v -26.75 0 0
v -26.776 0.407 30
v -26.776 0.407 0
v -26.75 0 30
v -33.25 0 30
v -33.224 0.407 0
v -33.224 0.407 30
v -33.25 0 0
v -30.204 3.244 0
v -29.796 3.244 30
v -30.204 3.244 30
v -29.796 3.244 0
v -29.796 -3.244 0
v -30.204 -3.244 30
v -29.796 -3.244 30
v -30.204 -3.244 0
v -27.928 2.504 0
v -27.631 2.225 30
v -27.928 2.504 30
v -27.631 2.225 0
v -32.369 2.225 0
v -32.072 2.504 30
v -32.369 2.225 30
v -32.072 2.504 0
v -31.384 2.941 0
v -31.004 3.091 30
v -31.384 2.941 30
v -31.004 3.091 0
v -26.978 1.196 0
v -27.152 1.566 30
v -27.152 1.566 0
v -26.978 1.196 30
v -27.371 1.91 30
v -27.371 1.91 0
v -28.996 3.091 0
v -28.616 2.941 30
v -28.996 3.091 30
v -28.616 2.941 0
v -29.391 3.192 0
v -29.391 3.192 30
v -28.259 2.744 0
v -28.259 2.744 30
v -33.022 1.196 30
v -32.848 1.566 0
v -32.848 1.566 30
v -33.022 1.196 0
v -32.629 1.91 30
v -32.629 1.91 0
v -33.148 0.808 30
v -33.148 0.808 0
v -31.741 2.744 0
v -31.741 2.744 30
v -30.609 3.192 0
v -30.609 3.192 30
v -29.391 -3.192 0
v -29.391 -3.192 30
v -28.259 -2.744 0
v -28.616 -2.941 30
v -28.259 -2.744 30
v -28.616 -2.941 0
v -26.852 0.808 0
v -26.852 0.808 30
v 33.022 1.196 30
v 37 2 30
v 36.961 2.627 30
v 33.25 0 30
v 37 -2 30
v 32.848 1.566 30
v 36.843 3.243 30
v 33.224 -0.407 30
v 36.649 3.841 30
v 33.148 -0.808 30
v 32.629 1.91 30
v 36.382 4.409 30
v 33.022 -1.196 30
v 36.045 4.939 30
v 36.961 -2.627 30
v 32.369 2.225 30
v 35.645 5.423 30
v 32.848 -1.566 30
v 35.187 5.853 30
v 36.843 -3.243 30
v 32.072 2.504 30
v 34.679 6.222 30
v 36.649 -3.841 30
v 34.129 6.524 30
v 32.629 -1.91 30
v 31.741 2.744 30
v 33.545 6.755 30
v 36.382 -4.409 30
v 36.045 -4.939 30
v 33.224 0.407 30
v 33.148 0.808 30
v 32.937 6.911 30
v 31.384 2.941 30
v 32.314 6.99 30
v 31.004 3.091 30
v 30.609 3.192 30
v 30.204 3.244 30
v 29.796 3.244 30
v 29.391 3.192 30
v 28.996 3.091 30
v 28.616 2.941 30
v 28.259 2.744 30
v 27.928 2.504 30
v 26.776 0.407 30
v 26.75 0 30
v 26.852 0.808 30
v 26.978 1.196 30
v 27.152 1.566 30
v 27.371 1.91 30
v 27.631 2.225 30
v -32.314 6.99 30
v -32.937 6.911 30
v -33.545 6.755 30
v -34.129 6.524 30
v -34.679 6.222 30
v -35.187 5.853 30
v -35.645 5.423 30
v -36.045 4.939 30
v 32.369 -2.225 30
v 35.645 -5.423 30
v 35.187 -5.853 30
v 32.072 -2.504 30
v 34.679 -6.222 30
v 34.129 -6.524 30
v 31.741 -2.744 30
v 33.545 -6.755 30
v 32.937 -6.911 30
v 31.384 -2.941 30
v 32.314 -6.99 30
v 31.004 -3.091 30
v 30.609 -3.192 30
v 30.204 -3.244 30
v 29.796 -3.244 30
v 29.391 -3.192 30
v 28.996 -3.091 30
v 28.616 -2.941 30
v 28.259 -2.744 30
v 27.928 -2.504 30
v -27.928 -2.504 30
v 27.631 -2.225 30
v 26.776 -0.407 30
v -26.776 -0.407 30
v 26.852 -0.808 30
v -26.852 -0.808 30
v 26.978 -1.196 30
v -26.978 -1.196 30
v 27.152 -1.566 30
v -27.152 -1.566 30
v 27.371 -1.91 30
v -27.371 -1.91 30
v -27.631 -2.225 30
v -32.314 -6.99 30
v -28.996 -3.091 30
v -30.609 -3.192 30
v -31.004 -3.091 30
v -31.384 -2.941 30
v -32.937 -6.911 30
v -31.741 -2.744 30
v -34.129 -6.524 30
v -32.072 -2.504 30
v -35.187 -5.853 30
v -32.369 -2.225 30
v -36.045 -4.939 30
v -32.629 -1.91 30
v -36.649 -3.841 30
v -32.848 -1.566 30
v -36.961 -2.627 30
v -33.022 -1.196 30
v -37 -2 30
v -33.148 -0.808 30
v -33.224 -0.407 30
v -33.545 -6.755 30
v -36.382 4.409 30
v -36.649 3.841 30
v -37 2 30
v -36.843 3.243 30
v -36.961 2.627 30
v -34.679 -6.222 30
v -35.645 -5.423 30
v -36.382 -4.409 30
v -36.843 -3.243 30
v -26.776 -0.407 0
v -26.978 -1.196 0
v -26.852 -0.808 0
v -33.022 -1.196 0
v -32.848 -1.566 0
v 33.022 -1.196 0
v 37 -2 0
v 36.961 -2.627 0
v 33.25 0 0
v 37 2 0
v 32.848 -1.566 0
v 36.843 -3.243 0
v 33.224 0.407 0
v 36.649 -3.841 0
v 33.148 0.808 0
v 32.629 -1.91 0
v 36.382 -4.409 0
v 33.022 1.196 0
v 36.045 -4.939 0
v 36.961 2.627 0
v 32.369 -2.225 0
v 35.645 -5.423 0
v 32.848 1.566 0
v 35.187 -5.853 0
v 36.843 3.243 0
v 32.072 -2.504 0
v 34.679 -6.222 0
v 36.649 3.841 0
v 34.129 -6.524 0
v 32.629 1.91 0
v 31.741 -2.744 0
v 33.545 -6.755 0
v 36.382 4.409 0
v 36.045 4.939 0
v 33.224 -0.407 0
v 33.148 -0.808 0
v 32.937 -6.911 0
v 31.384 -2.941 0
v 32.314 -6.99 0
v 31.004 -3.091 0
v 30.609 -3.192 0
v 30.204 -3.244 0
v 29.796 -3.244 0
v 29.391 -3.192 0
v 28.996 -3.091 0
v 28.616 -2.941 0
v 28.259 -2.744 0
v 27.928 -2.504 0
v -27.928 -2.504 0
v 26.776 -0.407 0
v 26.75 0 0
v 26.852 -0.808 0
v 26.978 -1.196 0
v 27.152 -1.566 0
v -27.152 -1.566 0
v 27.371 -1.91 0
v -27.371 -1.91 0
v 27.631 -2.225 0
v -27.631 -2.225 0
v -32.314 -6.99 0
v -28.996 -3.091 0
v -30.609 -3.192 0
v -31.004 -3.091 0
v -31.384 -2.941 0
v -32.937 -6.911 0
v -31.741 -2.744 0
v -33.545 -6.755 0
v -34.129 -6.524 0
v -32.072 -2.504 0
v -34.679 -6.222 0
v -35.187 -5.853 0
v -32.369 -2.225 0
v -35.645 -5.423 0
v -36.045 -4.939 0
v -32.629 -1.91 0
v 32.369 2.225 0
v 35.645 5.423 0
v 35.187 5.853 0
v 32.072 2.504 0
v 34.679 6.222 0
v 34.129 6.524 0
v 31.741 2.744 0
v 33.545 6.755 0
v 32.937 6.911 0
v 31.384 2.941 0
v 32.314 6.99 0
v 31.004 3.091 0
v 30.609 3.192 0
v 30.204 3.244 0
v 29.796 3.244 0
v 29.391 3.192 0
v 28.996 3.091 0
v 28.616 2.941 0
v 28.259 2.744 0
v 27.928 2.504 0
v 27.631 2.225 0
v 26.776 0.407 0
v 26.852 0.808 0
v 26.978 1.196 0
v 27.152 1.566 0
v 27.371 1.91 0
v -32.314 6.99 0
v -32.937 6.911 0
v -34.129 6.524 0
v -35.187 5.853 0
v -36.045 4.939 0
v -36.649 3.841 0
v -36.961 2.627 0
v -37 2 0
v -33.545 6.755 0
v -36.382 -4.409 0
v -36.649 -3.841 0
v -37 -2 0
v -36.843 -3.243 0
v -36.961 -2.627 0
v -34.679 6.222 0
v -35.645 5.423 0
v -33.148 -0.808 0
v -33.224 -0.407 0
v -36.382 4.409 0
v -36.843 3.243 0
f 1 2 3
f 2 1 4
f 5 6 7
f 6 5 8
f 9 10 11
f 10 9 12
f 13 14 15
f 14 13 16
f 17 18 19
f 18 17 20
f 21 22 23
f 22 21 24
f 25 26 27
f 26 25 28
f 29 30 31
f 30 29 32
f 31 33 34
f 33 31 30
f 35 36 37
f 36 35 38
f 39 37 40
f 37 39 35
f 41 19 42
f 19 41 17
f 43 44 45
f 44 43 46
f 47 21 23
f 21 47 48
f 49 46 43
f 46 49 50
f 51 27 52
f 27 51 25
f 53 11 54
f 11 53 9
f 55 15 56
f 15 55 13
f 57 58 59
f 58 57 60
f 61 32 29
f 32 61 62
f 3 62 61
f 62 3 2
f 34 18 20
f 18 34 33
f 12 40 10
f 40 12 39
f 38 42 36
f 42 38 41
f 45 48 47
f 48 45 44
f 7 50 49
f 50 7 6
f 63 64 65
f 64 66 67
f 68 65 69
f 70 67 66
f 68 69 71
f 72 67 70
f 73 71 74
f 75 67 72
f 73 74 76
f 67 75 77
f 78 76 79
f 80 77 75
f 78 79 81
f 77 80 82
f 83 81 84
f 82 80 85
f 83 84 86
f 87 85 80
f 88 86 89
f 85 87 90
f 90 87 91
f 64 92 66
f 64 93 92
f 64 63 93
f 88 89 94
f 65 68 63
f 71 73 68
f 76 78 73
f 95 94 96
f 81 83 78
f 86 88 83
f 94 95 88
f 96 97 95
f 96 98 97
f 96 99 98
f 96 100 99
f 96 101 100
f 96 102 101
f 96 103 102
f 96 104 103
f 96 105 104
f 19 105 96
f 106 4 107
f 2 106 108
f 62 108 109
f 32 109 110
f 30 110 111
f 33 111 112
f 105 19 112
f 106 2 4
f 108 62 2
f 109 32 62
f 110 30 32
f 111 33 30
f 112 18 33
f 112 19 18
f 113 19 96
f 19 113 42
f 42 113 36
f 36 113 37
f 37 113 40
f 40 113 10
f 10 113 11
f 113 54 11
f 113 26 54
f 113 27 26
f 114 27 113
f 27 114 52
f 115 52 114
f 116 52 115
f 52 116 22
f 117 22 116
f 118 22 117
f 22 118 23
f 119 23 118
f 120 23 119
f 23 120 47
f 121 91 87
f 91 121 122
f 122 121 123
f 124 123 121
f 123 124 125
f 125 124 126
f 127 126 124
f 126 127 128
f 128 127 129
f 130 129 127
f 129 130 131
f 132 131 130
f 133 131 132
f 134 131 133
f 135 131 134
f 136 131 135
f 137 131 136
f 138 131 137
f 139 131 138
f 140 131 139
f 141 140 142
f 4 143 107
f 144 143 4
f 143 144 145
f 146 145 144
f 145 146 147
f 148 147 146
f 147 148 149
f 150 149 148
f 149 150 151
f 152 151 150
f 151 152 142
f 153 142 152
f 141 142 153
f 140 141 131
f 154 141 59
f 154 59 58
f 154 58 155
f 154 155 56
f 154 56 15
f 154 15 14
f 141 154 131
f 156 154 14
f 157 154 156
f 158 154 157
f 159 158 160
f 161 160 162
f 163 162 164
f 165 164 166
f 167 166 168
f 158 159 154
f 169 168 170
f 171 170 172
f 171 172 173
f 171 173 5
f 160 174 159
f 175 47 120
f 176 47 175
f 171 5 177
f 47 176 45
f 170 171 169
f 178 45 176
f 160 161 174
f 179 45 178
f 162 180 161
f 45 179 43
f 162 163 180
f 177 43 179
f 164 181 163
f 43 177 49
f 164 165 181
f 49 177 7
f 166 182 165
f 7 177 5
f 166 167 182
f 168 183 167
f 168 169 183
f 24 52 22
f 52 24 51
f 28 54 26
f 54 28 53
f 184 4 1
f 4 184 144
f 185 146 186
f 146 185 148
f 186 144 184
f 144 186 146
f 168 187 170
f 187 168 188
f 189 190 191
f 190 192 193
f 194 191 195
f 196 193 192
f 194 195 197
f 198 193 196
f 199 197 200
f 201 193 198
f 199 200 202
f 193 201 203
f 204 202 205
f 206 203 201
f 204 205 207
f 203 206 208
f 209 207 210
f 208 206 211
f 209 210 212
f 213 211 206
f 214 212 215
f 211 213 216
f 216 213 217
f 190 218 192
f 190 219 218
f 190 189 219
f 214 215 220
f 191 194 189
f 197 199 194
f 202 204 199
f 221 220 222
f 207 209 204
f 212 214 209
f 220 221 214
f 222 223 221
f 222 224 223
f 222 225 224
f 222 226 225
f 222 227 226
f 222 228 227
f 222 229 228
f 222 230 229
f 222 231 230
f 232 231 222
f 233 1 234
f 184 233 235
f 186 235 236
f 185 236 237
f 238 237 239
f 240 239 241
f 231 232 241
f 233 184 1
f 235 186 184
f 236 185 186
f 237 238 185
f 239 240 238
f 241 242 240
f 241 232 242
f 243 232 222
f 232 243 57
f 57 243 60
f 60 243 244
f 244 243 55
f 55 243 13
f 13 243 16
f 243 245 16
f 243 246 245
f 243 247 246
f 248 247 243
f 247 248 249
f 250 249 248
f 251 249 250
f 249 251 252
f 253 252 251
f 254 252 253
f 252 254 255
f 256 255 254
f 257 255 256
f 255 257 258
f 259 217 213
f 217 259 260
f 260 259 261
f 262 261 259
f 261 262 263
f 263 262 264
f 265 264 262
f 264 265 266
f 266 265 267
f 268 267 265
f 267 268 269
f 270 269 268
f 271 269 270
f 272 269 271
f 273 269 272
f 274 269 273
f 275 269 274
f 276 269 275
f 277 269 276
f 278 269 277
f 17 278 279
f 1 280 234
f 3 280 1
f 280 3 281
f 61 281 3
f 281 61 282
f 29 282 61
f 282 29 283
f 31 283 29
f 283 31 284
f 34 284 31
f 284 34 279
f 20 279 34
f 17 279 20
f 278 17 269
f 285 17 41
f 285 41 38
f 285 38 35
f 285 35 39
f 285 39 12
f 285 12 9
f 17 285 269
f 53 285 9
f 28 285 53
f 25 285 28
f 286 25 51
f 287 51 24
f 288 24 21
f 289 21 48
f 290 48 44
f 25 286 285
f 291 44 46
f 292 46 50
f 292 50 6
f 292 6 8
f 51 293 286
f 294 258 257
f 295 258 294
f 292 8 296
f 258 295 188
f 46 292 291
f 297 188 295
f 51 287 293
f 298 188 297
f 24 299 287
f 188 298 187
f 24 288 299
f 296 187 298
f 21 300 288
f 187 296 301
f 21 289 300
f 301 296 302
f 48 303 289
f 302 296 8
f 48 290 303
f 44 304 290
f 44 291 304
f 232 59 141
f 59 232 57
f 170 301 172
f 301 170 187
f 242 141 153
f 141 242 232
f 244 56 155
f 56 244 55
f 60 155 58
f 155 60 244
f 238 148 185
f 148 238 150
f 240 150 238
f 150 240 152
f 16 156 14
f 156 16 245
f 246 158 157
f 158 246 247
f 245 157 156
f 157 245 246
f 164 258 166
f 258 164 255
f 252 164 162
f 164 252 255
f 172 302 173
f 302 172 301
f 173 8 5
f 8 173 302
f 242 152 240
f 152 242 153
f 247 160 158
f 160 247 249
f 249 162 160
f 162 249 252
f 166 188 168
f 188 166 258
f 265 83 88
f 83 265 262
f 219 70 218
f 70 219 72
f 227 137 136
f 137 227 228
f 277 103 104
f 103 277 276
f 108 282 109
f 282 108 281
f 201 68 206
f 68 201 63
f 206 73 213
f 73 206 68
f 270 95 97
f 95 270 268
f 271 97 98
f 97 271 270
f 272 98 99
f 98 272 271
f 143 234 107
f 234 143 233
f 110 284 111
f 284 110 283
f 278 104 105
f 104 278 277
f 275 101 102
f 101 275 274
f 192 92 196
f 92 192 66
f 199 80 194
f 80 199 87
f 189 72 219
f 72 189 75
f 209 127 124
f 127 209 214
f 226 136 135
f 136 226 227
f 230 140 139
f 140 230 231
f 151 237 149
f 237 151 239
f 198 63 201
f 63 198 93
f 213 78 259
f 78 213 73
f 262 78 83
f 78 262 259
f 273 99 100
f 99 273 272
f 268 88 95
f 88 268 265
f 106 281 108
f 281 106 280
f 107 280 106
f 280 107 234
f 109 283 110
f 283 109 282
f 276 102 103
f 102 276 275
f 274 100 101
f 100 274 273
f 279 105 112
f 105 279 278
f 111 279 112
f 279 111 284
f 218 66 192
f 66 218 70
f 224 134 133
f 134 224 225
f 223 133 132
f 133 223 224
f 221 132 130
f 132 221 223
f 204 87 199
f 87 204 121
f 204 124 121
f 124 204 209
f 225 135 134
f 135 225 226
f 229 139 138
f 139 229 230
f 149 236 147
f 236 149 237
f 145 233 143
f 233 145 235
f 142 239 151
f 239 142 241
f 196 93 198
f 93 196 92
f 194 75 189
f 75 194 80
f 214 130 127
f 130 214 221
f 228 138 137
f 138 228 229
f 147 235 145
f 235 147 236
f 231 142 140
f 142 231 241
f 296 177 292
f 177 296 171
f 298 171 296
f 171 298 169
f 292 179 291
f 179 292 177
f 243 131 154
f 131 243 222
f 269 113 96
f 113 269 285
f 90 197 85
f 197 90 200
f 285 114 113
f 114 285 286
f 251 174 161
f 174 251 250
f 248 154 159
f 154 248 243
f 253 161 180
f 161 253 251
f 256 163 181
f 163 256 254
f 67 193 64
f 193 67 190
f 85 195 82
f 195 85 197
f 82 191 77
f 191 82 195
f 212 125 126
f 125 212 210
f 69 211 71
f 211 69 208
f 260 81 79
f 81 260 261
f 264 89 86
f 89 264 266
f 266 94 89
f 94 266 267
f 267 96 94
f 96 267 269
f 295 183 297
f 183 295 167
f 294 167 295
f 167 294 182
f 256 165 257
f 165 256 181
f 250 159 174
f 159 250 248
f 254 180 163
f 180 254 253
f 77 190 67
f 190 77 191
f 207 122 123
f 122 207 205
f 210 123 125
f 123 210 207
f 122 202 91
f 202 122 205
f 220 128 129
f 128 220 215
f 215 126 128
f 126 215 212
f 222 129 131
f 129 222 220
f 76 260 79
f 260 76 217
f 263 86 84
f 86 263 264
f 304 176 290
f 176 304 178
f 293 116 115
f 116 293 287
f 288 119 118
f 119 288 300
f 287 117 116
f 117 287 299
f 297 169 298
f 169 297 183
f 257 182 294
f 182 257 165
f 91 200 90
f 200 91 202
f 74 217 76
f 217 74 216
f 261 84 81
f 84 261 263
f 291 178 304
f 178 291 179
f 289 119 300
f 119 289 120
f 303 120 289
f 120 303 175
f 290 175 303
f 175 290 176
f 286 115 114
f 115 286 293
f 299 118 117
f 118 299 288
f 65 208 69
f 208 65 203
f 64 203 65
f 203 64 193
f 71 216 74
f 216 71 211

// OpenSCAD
$fn = 50;


difference() {
	union() {
		hull() {
			translate(v = [-32.0000000000, 2.0000000000, 0]) {
				cylinder(h = 30, r = 5);
			}
			translate(v = [32.0000000000, 2.0000000000, 0]) {
				cylinder(h = 30, r = 5);
			}
			translate(v = [-32.0000000000, -2.0000000000, 0]) {
				cylinder(h = 30, r = 5);
			}
			translate(v = [32.0000000000, -2.0000000000, 0]) {
				cylinder(h = 30, r = 5);
			}
		}
	}
	union() {
		translate(v = [-30.0000000000, 0.0000000000, 0]) {
			cylinder(h = 30, r = 3.2500000000);
		}
		translate(v = [30.0000000000, 0.0000000000, 0]) {
			cylinder(h = 30, r = 3.2500000000);
		}
		translate(v = [-30.0000000000, 0.0000000000, 0]) {
			cylinder(h = 30, r = 1.8000000000);
		}
		translate(v = [30.0000000000, 0.0000000000, 0]) {
			cylinder(h = 30, r = 1.8000000000);
		}
		translate(v = [-30.0000000000, 0.0000000000, 0]) {
			cylinder(h = 30, r = 1.8000000000);
		}
		translate(v = [30.0000000000, 0.0000000000, 0]) {
			cylinder(h = 30, r = 1.8000000000);
		}
		translate(v = [-30.0000000000, 0.0000000000, 0]) {
			cylinder(h = 30, r = 1.8000000000);
		}
		translate(v = [30.0000000000, 0.0000000000, 0]) {
			cylinder(h = 30, r = 1.8000000000);
		}
	}
}
